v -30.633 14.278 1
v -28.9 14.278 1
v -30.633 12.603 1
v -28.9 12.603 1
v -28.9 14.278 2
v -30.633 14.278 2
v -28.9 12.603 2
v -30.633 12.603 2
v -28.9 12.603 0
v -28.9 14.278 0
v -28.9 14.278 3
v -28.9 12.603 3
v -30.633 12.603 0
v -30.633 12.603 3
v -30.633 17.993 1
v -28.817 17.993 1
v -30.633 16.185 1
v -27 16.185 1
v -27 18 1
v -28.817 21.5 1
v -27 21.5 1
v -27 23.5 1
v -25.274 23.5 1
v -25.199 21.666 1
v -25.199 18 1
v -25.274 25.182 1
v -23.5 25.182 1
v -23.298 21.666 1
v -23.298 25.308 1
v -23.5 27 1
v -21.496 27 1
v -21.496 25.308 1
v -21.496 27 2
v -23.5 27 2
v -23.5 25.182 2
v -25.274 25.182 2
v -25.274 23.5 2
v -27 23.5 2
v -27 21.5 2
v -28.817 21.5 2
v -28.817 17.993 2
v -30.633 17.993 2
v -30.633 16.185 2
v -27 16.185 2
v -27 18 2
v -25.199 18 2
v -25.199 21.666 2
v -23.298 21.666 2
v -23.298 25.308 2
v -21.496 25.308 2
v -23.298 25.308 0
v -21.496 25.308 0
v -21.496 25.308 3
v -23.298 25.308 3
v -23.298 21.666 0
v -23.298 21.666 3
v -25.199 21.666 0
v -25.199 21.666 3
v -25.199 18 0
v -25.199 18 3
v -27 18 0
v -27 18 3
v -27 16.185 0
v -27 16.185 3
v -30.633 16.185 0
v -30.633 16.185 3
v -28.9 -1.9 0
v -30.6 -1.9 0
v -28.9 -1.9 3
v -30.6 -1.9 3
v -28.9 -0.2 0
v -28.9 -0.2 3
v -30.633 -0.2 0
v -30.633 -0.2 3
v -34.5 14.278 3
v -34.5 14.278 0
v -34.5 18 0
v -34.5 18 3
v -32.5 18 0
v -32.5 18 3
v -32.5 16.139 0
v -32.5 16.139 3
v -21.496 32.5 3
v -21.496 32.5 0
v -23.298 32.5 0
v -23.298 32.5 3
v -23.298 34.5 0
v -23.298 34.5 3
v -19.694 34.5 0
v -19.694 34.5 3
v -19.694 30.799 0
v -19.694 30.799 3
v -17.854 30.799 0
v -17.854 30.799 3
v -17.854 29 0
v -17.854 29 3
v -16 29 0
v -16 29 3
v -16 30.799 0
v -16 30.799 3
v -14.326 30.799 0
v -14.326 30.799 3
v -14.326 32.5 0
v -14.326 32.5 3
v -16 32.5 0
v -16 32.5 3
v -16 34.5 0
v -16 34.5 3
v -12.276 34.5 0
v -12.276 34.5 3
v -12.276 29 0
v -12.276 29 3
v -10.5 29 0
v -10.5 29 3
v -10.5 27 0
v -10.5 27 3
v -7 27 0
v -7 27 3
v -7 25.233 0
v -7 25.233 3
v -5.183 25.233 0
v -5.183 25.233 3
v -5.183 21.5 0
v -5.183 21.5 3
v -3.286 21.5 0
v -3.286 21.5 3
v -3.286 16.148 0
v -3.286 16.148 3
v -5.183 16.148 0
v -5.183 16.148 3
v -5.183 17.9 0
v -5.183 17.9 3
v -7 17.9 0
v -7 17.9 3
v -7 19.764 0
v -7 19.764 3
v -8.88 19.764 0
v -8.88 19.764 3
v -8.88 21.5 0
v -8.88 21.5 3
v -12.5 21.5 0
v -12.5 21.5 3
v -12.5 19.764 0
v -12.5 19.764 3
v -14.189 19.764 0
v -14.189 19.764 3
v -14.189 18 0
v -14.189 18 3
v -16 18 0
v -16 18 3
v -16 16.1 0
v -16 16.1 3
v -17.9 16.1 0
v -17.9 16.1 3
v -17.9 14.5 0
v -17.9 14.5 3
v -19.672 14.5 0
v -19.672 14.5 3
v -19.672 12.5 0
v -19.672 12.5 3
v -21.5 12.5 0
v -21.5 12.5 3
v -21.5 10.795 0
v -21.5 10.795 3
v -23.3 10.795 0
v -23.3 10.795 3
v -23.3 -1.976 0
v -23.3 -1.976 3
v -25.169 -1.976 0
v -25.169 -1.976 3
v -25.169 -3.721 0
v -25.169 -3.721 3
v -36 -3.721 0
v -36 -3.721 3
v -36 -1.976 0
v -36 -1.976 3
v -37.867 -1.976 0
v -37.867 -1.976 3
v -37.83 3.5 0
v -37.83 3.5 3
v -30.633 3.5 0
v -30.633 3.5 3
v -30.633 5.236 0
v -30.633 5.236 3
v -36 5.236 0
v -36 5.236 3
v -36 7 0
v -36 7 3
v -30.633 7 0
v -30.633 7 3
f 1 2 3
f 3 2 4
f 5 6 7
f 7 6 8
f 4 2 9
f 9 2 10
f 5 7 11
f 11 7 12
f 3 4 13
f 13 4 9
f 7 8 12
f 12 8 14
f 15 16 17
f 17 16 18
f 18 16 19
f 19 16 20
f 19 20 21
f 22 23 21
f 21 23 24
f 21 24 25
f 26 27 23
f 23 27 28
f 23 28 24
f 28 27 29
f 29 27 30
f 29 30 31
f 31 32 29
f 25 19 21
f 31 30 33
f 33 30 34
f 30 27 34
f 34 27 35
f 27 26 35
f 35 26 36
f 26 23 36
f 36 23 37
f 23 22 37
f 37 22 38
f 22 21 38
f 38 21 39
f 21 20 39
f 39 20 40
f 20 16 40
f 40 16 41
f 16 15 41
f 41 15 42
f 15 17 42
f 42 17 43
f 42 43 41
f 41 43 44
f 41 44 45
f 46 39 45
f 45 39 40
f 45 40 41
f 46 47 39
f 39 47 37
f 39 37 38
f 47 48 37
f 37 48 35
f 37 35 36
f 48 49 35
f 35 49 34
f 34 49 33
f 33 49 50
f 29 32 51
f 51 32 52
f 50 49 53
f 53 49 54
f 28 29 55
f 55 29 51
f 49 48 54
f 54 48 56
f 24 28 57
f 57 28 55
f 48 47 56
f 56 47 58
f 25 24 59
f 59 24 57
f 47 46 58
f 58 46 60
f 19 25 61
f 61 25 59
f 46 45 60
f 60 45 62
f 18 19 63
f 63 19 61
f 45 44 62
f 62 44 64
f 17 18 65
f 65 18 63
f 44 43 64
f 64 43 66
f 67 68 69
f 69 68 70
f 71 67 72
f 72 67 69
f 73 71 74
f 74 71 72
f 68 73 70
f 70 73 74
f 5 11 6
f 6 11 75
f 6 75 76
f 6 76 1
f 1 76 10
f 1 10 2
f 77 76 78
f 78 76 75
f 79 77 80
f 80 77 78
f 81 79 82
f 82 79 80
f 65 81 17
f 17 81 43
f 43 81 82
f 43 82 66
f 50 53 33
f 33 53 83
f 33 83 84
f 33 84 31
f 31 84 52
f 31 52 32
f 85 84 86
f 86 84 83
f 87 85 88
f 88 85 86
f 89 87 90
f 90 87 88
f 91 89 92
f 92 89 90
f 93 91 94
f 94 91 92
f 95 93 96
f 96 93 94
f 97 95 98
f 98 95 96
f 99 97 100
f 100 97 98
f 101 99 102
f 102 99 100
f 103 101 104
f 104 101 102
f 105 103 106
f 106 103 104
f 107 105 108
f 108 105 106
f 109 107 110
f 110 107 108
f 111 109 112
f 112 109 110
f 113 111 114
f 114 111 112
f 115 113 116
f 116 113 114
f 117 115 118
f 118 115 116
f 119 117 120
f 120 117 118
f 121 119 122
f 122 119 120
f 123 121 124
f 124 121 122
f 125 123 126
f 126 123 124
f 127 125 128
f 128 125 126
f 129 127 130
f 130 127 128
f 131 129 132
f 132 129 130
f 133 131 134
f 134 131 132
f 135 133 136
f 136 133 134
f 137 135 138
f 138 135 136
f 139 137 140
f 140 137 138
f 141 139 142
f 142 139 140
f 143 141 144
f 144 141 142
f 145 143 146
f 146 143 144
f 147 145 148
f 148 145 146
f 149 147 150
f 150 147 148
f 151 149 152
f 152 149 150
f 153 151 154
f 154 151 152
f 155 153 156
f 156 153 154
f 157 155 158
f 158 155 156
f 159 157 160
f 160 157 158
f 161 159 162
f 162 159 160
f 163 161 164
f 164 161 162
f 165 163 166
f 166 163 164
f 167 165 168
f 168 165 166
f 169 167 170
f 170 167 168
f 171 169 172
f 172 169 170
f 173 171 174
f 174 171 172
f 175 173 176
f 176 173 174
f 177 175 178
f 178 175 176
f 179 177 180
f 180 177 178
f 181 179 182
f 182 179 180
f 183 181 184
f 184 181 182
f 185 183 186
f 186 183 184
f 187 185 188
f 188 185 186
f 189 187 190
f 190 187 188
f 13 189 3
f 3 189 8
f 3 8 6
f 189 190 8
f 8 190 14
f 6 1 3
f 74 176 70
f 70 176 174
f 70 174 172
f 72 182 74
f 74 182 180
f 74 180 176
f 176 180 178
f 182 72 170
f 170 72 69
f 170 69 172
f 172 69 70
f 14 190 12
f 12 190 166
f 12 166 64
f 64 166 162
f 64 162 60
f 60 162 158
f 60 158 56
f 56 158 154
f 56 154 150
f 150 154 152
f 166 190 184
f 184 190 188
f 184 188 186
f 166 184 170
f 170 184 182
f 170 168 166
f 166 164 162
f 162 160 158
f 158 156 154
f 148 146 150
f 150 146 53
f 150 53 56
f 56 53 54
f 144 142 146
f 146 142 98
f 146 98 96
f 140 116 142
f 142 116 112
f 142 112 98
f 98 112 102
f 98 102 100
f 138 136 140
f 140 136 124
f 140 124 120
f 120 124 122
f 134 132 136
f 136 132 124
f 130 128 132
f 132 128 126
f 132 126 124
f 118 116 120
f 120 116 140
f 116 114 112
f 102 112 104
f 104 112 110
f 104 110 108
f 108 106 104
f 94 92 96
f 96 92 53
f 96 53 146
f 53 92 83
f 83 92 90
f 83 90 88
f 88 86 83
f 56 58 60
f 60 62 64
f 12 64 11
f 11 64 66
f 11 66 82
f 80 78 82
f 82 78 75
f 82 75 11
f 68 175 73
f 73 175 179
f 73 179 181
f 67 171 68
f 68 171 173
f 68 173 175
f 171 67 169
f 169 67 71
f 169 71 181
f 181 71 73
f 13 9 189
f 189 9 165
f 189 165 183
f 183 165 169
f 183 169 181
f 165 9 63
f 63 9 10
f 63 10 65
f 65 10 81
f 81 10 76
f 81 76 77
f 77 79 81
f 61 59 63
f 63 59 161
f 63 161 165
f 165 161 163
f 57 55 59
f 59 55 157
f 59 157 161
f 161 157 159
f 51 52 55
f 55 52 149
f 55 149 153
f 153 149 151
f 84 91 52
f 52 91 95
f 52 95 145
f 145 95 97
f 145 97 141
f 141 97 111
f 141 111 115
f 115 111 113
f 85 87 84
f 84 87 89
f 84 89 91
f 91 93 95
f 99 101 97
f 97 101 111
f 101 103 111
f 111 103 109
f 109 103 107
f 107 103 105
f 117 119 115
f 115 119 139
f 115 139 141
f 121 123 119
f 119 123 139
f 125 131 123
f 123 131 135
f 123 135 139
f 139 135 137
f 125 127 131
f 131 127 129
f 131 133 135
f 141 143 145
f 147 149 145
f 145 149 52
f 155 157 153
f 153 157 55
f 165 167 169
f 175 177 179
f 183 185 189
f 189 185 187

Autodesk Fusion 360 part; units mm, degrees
sketch "dino" plane through (0, 0, 0) normal (0, 0, 1) x (1, 0, 0)
  line L0 (-1, -5) -> (-41, -5)
  line L1 (-41, -5) -> (-41, 35)
  line L2 (-41, 35) -> (-1, 35)
  line L3 (-1, 35) -> (-1, -5)
  line L4 (-37.8669, -1.9758) -> (-36, -1.9758)
  line L5 (-36, -1.9758) -> (-36, -3.7206)
  line L6 (-36, -3.7206) -> (-25.1685, -3.7206)
  line L7 (-25.1685, -3.7206) -> (-25.1685, -1.9758)
  line L8 (-25.1685, -1.9758) -> (-23.3, -1.9758)
  line L9 (-23.3, -1.9758) -> (-23.3, 10.7954)
  line L10 (-23.3, 10.7954) -> (-21.5, 10.7954)
  line L11 (-21.5, 10.7954) -> (-21.5, 12.5)
  line L12 (-21.5, 12.5) -> (-19.672, 12.5)
  line L13 (-19.672, 12.5) -> (-19.672, 14.5)
  line L14 (-19.672, 14.5) -> (-17.9, 14.5)
  line L15 (-17.9, 14.5) -> (-17.9, 16.1)
  line L16 (-17.9, 16.1) -> (-16, 16.1)
  line L17 (-16, 16.1) -> (-16, 18)
  line L18 (-16, 18) -> (-14.189, 18)
  line L19 (-14.189, 18) -> (-14.189, 19.764)
  line L20 (-14.189, 19.764) -> (-12.5, 19.764)
  line L21 (-12.5, 19.764) -> (-12.5, 21.5)
  line L22 (-12.5, 21.5) -> (-8.8798, 21.5)
  line L23 (-8.8798, 21.5) -> (-8.8798, 19.764)
  line L24 (-8.8798, 19.764) -> (-7, 19.764)
  line L25 (-7, 19.764) -> (-7, 17.9)
  line L26 (-7, 17.9) -> (-5.1831, 17.9)
  line L27 (-5.1831, 17.9) -> (-5.1831, 16.1484)
  line L28 (-5.1831, 16.1484) -> (-3.2862, 16.1484)
  line L29 (-3.2862, 16.1484) -> (-3.2862, 21.5)
  line L30 (-3.2862, 21.5) -> (-5.1831, 21.5)
  line L31 (-5.1831, 21.5) -> (-5.1831, 25.233)
  line L32 (-5.1831, 25.233) -> (-7, 25.233)
  line L33 (-7, 25.233) -> (-7, 27)
  line L34 (-7, 27) -> (-10.5, 27)
  line L35 (-10.5, 27) -> (-10.5, 29)
  line L36 (-10.5, 29) -> (-12.276, 29)
  line L37 (-12.276, 29) -> (-12.276, 34.5)
  line L38 (-12.276, 34.5) -> (-16, 34.5)
  line L39 (-16, 34.5) -> (-16, 32.5)
  line L40 (-16, 32.5) -> (-14.3257, 32.5)
  line L41 (-14.3257, 32.5) -> (-14.3257, 30.7993)
  line L42 (-14.3257, 30.7993) -> (-16, 30.7993)
  line L43 (-16, 30.7993) -> (-16, 29)
  line L44 (-16, 29) -> (-17.8539, 29)
  line L45 (-17.8539, 29) -> (-17.8539, 30.7993)
  line L46 (-17.8539, 30.7993) -> (-19.6941, 30.7993)
  line L47 (-19.6941, 30.7993) -> (-19.6941, 34.5)
  line L48 (-19.6941, 34.5) -> (-23.2983, 34.5)
  line L49 (-23.2983, 34.5) -> (-23.2983, 32.5)
  line L50 (-23.2983, 32.5) -> (-21.4962, 32.5)
  line L51 (-21.4962, 32.5) -> (-21.4962, 25.308)
  line L52 (-21.4962, 25.308) -> (-23.2983, 25.308)
  line L53 (-23.2983, 25.308) -> (-23.2983, 21.6664)
  line L54 (-23.2983, 21.6664) -> (-25.1992, 21.6664)
  line L55 (-25.1992, 21.6664) -> (-25.1992, 18)
  line L56 (-25.1992, 18) -> (-27, 18)
  line L57 (-27, 18) -> (-27, 16.1853)
  line L58 (-27, 16.1853) -> (-30.633, 16.1853)
  line L59 (-30.633, 16.1853) -> (-30.633, 7)
  line L60 (-30.633, 7) -> (-36, 7)
  line L61 (-36, 7) -> (-36, 5.2364)
  line L62 (-36, 5.2364) -> (-30.633, 5.2364)
  line L63 (-30.633, 5.2364) -> (-30.633, 3.5)
  line L64 (-30.633, 3.5) -> (-37.8295, 3.5)
  line L65 (-37.8295, 3.5) -> (-37.8669, -1.9758)
  line L66 (-30.6, -1.9) -> (-28.9, -1.9)
  line L67 (-28.9, -1.9) -> (-28.9, -0.2)
  line L68 (-28.9, -0.2) -> (-30.633, -0.2)
  line L69 (-30.633, -0.2) -> (-30.6, -1.9)
  line L70 (-30.633, 12.6033) -> (-28.9, 12.6033)
  line L71 (-28.9, 12.6033) -> (-28.9, 14.2784)
  line L72 (-28.9, 14.2784) -> (-34.5, 14.2784)
  line L73 (-34.5, 14.2784) -> (-34.5, 18)
  line L74 (-34.5, 18) -> (-32.5, 18)
  line L75 (-32.5, 18) -> (-32.5, 16.1392)
  line L76 (-32.5, 16.1392) -> (-30.633, 16.1853)
  line L77 (-30.633, 17.9928) -> (-28.8165, 17.9928)
  line L78 (-28.8165, 17.9928) -> (-28.8165, 21.5)
  line L79 (-28.8165, 21.5) -> (-27, 21.5)
  line L80 (-27, 21.5) -> (-27, 23.5)
  line L81 (-27, 23.5) -> (-25.274, 23.5)
  line L82 (-25.274, 23.5) -> (-25.274, 25.1824)
  line L83 (-25.274, 25.1824) -> (-23.5, 25.1824)
  line L84 (-23.5, 25.1824) -> (-23.5, 27)
  line L85 (-23.5, 27) -> (-21.4962, 27)
  line L86 (-30.633, 17.9928) -> (-30.633, 16.1853)
  dimension "d1" = 40
  dimension "d2" = 40
extrude "Extrude1" add sketch "dino" along normal blind 3 contours L4 L5 L6 L7 L8 L9 L10 L11 L12 L13 L14 L15 L16 L17 L18 L19 L20 L21 L22 L23 L24 L25 L26 L27 L28 L29 L30 L31 L32 L33 L34 L35 L36 L37 L38 L39 L40 L41 L42 L43 L44 L45 L46 L47 L48 L49 L50 L51 L52 L53 L54 L55 L56 L57 L58 L59 L60 L61 L62 L63 L64 L65 L70 L71 L72 | L59 L72 L73 L74 L75 L76
extrude "Extrude2" add sketch "dino" along normal blind 2 and the other way blind -1 contours L59 L70 L71 L72 | L51 L52 L53 L54 L55 L56 L57 L58 L77 L78 L79 L80 L81 L82 L83 L84 L85 L86
